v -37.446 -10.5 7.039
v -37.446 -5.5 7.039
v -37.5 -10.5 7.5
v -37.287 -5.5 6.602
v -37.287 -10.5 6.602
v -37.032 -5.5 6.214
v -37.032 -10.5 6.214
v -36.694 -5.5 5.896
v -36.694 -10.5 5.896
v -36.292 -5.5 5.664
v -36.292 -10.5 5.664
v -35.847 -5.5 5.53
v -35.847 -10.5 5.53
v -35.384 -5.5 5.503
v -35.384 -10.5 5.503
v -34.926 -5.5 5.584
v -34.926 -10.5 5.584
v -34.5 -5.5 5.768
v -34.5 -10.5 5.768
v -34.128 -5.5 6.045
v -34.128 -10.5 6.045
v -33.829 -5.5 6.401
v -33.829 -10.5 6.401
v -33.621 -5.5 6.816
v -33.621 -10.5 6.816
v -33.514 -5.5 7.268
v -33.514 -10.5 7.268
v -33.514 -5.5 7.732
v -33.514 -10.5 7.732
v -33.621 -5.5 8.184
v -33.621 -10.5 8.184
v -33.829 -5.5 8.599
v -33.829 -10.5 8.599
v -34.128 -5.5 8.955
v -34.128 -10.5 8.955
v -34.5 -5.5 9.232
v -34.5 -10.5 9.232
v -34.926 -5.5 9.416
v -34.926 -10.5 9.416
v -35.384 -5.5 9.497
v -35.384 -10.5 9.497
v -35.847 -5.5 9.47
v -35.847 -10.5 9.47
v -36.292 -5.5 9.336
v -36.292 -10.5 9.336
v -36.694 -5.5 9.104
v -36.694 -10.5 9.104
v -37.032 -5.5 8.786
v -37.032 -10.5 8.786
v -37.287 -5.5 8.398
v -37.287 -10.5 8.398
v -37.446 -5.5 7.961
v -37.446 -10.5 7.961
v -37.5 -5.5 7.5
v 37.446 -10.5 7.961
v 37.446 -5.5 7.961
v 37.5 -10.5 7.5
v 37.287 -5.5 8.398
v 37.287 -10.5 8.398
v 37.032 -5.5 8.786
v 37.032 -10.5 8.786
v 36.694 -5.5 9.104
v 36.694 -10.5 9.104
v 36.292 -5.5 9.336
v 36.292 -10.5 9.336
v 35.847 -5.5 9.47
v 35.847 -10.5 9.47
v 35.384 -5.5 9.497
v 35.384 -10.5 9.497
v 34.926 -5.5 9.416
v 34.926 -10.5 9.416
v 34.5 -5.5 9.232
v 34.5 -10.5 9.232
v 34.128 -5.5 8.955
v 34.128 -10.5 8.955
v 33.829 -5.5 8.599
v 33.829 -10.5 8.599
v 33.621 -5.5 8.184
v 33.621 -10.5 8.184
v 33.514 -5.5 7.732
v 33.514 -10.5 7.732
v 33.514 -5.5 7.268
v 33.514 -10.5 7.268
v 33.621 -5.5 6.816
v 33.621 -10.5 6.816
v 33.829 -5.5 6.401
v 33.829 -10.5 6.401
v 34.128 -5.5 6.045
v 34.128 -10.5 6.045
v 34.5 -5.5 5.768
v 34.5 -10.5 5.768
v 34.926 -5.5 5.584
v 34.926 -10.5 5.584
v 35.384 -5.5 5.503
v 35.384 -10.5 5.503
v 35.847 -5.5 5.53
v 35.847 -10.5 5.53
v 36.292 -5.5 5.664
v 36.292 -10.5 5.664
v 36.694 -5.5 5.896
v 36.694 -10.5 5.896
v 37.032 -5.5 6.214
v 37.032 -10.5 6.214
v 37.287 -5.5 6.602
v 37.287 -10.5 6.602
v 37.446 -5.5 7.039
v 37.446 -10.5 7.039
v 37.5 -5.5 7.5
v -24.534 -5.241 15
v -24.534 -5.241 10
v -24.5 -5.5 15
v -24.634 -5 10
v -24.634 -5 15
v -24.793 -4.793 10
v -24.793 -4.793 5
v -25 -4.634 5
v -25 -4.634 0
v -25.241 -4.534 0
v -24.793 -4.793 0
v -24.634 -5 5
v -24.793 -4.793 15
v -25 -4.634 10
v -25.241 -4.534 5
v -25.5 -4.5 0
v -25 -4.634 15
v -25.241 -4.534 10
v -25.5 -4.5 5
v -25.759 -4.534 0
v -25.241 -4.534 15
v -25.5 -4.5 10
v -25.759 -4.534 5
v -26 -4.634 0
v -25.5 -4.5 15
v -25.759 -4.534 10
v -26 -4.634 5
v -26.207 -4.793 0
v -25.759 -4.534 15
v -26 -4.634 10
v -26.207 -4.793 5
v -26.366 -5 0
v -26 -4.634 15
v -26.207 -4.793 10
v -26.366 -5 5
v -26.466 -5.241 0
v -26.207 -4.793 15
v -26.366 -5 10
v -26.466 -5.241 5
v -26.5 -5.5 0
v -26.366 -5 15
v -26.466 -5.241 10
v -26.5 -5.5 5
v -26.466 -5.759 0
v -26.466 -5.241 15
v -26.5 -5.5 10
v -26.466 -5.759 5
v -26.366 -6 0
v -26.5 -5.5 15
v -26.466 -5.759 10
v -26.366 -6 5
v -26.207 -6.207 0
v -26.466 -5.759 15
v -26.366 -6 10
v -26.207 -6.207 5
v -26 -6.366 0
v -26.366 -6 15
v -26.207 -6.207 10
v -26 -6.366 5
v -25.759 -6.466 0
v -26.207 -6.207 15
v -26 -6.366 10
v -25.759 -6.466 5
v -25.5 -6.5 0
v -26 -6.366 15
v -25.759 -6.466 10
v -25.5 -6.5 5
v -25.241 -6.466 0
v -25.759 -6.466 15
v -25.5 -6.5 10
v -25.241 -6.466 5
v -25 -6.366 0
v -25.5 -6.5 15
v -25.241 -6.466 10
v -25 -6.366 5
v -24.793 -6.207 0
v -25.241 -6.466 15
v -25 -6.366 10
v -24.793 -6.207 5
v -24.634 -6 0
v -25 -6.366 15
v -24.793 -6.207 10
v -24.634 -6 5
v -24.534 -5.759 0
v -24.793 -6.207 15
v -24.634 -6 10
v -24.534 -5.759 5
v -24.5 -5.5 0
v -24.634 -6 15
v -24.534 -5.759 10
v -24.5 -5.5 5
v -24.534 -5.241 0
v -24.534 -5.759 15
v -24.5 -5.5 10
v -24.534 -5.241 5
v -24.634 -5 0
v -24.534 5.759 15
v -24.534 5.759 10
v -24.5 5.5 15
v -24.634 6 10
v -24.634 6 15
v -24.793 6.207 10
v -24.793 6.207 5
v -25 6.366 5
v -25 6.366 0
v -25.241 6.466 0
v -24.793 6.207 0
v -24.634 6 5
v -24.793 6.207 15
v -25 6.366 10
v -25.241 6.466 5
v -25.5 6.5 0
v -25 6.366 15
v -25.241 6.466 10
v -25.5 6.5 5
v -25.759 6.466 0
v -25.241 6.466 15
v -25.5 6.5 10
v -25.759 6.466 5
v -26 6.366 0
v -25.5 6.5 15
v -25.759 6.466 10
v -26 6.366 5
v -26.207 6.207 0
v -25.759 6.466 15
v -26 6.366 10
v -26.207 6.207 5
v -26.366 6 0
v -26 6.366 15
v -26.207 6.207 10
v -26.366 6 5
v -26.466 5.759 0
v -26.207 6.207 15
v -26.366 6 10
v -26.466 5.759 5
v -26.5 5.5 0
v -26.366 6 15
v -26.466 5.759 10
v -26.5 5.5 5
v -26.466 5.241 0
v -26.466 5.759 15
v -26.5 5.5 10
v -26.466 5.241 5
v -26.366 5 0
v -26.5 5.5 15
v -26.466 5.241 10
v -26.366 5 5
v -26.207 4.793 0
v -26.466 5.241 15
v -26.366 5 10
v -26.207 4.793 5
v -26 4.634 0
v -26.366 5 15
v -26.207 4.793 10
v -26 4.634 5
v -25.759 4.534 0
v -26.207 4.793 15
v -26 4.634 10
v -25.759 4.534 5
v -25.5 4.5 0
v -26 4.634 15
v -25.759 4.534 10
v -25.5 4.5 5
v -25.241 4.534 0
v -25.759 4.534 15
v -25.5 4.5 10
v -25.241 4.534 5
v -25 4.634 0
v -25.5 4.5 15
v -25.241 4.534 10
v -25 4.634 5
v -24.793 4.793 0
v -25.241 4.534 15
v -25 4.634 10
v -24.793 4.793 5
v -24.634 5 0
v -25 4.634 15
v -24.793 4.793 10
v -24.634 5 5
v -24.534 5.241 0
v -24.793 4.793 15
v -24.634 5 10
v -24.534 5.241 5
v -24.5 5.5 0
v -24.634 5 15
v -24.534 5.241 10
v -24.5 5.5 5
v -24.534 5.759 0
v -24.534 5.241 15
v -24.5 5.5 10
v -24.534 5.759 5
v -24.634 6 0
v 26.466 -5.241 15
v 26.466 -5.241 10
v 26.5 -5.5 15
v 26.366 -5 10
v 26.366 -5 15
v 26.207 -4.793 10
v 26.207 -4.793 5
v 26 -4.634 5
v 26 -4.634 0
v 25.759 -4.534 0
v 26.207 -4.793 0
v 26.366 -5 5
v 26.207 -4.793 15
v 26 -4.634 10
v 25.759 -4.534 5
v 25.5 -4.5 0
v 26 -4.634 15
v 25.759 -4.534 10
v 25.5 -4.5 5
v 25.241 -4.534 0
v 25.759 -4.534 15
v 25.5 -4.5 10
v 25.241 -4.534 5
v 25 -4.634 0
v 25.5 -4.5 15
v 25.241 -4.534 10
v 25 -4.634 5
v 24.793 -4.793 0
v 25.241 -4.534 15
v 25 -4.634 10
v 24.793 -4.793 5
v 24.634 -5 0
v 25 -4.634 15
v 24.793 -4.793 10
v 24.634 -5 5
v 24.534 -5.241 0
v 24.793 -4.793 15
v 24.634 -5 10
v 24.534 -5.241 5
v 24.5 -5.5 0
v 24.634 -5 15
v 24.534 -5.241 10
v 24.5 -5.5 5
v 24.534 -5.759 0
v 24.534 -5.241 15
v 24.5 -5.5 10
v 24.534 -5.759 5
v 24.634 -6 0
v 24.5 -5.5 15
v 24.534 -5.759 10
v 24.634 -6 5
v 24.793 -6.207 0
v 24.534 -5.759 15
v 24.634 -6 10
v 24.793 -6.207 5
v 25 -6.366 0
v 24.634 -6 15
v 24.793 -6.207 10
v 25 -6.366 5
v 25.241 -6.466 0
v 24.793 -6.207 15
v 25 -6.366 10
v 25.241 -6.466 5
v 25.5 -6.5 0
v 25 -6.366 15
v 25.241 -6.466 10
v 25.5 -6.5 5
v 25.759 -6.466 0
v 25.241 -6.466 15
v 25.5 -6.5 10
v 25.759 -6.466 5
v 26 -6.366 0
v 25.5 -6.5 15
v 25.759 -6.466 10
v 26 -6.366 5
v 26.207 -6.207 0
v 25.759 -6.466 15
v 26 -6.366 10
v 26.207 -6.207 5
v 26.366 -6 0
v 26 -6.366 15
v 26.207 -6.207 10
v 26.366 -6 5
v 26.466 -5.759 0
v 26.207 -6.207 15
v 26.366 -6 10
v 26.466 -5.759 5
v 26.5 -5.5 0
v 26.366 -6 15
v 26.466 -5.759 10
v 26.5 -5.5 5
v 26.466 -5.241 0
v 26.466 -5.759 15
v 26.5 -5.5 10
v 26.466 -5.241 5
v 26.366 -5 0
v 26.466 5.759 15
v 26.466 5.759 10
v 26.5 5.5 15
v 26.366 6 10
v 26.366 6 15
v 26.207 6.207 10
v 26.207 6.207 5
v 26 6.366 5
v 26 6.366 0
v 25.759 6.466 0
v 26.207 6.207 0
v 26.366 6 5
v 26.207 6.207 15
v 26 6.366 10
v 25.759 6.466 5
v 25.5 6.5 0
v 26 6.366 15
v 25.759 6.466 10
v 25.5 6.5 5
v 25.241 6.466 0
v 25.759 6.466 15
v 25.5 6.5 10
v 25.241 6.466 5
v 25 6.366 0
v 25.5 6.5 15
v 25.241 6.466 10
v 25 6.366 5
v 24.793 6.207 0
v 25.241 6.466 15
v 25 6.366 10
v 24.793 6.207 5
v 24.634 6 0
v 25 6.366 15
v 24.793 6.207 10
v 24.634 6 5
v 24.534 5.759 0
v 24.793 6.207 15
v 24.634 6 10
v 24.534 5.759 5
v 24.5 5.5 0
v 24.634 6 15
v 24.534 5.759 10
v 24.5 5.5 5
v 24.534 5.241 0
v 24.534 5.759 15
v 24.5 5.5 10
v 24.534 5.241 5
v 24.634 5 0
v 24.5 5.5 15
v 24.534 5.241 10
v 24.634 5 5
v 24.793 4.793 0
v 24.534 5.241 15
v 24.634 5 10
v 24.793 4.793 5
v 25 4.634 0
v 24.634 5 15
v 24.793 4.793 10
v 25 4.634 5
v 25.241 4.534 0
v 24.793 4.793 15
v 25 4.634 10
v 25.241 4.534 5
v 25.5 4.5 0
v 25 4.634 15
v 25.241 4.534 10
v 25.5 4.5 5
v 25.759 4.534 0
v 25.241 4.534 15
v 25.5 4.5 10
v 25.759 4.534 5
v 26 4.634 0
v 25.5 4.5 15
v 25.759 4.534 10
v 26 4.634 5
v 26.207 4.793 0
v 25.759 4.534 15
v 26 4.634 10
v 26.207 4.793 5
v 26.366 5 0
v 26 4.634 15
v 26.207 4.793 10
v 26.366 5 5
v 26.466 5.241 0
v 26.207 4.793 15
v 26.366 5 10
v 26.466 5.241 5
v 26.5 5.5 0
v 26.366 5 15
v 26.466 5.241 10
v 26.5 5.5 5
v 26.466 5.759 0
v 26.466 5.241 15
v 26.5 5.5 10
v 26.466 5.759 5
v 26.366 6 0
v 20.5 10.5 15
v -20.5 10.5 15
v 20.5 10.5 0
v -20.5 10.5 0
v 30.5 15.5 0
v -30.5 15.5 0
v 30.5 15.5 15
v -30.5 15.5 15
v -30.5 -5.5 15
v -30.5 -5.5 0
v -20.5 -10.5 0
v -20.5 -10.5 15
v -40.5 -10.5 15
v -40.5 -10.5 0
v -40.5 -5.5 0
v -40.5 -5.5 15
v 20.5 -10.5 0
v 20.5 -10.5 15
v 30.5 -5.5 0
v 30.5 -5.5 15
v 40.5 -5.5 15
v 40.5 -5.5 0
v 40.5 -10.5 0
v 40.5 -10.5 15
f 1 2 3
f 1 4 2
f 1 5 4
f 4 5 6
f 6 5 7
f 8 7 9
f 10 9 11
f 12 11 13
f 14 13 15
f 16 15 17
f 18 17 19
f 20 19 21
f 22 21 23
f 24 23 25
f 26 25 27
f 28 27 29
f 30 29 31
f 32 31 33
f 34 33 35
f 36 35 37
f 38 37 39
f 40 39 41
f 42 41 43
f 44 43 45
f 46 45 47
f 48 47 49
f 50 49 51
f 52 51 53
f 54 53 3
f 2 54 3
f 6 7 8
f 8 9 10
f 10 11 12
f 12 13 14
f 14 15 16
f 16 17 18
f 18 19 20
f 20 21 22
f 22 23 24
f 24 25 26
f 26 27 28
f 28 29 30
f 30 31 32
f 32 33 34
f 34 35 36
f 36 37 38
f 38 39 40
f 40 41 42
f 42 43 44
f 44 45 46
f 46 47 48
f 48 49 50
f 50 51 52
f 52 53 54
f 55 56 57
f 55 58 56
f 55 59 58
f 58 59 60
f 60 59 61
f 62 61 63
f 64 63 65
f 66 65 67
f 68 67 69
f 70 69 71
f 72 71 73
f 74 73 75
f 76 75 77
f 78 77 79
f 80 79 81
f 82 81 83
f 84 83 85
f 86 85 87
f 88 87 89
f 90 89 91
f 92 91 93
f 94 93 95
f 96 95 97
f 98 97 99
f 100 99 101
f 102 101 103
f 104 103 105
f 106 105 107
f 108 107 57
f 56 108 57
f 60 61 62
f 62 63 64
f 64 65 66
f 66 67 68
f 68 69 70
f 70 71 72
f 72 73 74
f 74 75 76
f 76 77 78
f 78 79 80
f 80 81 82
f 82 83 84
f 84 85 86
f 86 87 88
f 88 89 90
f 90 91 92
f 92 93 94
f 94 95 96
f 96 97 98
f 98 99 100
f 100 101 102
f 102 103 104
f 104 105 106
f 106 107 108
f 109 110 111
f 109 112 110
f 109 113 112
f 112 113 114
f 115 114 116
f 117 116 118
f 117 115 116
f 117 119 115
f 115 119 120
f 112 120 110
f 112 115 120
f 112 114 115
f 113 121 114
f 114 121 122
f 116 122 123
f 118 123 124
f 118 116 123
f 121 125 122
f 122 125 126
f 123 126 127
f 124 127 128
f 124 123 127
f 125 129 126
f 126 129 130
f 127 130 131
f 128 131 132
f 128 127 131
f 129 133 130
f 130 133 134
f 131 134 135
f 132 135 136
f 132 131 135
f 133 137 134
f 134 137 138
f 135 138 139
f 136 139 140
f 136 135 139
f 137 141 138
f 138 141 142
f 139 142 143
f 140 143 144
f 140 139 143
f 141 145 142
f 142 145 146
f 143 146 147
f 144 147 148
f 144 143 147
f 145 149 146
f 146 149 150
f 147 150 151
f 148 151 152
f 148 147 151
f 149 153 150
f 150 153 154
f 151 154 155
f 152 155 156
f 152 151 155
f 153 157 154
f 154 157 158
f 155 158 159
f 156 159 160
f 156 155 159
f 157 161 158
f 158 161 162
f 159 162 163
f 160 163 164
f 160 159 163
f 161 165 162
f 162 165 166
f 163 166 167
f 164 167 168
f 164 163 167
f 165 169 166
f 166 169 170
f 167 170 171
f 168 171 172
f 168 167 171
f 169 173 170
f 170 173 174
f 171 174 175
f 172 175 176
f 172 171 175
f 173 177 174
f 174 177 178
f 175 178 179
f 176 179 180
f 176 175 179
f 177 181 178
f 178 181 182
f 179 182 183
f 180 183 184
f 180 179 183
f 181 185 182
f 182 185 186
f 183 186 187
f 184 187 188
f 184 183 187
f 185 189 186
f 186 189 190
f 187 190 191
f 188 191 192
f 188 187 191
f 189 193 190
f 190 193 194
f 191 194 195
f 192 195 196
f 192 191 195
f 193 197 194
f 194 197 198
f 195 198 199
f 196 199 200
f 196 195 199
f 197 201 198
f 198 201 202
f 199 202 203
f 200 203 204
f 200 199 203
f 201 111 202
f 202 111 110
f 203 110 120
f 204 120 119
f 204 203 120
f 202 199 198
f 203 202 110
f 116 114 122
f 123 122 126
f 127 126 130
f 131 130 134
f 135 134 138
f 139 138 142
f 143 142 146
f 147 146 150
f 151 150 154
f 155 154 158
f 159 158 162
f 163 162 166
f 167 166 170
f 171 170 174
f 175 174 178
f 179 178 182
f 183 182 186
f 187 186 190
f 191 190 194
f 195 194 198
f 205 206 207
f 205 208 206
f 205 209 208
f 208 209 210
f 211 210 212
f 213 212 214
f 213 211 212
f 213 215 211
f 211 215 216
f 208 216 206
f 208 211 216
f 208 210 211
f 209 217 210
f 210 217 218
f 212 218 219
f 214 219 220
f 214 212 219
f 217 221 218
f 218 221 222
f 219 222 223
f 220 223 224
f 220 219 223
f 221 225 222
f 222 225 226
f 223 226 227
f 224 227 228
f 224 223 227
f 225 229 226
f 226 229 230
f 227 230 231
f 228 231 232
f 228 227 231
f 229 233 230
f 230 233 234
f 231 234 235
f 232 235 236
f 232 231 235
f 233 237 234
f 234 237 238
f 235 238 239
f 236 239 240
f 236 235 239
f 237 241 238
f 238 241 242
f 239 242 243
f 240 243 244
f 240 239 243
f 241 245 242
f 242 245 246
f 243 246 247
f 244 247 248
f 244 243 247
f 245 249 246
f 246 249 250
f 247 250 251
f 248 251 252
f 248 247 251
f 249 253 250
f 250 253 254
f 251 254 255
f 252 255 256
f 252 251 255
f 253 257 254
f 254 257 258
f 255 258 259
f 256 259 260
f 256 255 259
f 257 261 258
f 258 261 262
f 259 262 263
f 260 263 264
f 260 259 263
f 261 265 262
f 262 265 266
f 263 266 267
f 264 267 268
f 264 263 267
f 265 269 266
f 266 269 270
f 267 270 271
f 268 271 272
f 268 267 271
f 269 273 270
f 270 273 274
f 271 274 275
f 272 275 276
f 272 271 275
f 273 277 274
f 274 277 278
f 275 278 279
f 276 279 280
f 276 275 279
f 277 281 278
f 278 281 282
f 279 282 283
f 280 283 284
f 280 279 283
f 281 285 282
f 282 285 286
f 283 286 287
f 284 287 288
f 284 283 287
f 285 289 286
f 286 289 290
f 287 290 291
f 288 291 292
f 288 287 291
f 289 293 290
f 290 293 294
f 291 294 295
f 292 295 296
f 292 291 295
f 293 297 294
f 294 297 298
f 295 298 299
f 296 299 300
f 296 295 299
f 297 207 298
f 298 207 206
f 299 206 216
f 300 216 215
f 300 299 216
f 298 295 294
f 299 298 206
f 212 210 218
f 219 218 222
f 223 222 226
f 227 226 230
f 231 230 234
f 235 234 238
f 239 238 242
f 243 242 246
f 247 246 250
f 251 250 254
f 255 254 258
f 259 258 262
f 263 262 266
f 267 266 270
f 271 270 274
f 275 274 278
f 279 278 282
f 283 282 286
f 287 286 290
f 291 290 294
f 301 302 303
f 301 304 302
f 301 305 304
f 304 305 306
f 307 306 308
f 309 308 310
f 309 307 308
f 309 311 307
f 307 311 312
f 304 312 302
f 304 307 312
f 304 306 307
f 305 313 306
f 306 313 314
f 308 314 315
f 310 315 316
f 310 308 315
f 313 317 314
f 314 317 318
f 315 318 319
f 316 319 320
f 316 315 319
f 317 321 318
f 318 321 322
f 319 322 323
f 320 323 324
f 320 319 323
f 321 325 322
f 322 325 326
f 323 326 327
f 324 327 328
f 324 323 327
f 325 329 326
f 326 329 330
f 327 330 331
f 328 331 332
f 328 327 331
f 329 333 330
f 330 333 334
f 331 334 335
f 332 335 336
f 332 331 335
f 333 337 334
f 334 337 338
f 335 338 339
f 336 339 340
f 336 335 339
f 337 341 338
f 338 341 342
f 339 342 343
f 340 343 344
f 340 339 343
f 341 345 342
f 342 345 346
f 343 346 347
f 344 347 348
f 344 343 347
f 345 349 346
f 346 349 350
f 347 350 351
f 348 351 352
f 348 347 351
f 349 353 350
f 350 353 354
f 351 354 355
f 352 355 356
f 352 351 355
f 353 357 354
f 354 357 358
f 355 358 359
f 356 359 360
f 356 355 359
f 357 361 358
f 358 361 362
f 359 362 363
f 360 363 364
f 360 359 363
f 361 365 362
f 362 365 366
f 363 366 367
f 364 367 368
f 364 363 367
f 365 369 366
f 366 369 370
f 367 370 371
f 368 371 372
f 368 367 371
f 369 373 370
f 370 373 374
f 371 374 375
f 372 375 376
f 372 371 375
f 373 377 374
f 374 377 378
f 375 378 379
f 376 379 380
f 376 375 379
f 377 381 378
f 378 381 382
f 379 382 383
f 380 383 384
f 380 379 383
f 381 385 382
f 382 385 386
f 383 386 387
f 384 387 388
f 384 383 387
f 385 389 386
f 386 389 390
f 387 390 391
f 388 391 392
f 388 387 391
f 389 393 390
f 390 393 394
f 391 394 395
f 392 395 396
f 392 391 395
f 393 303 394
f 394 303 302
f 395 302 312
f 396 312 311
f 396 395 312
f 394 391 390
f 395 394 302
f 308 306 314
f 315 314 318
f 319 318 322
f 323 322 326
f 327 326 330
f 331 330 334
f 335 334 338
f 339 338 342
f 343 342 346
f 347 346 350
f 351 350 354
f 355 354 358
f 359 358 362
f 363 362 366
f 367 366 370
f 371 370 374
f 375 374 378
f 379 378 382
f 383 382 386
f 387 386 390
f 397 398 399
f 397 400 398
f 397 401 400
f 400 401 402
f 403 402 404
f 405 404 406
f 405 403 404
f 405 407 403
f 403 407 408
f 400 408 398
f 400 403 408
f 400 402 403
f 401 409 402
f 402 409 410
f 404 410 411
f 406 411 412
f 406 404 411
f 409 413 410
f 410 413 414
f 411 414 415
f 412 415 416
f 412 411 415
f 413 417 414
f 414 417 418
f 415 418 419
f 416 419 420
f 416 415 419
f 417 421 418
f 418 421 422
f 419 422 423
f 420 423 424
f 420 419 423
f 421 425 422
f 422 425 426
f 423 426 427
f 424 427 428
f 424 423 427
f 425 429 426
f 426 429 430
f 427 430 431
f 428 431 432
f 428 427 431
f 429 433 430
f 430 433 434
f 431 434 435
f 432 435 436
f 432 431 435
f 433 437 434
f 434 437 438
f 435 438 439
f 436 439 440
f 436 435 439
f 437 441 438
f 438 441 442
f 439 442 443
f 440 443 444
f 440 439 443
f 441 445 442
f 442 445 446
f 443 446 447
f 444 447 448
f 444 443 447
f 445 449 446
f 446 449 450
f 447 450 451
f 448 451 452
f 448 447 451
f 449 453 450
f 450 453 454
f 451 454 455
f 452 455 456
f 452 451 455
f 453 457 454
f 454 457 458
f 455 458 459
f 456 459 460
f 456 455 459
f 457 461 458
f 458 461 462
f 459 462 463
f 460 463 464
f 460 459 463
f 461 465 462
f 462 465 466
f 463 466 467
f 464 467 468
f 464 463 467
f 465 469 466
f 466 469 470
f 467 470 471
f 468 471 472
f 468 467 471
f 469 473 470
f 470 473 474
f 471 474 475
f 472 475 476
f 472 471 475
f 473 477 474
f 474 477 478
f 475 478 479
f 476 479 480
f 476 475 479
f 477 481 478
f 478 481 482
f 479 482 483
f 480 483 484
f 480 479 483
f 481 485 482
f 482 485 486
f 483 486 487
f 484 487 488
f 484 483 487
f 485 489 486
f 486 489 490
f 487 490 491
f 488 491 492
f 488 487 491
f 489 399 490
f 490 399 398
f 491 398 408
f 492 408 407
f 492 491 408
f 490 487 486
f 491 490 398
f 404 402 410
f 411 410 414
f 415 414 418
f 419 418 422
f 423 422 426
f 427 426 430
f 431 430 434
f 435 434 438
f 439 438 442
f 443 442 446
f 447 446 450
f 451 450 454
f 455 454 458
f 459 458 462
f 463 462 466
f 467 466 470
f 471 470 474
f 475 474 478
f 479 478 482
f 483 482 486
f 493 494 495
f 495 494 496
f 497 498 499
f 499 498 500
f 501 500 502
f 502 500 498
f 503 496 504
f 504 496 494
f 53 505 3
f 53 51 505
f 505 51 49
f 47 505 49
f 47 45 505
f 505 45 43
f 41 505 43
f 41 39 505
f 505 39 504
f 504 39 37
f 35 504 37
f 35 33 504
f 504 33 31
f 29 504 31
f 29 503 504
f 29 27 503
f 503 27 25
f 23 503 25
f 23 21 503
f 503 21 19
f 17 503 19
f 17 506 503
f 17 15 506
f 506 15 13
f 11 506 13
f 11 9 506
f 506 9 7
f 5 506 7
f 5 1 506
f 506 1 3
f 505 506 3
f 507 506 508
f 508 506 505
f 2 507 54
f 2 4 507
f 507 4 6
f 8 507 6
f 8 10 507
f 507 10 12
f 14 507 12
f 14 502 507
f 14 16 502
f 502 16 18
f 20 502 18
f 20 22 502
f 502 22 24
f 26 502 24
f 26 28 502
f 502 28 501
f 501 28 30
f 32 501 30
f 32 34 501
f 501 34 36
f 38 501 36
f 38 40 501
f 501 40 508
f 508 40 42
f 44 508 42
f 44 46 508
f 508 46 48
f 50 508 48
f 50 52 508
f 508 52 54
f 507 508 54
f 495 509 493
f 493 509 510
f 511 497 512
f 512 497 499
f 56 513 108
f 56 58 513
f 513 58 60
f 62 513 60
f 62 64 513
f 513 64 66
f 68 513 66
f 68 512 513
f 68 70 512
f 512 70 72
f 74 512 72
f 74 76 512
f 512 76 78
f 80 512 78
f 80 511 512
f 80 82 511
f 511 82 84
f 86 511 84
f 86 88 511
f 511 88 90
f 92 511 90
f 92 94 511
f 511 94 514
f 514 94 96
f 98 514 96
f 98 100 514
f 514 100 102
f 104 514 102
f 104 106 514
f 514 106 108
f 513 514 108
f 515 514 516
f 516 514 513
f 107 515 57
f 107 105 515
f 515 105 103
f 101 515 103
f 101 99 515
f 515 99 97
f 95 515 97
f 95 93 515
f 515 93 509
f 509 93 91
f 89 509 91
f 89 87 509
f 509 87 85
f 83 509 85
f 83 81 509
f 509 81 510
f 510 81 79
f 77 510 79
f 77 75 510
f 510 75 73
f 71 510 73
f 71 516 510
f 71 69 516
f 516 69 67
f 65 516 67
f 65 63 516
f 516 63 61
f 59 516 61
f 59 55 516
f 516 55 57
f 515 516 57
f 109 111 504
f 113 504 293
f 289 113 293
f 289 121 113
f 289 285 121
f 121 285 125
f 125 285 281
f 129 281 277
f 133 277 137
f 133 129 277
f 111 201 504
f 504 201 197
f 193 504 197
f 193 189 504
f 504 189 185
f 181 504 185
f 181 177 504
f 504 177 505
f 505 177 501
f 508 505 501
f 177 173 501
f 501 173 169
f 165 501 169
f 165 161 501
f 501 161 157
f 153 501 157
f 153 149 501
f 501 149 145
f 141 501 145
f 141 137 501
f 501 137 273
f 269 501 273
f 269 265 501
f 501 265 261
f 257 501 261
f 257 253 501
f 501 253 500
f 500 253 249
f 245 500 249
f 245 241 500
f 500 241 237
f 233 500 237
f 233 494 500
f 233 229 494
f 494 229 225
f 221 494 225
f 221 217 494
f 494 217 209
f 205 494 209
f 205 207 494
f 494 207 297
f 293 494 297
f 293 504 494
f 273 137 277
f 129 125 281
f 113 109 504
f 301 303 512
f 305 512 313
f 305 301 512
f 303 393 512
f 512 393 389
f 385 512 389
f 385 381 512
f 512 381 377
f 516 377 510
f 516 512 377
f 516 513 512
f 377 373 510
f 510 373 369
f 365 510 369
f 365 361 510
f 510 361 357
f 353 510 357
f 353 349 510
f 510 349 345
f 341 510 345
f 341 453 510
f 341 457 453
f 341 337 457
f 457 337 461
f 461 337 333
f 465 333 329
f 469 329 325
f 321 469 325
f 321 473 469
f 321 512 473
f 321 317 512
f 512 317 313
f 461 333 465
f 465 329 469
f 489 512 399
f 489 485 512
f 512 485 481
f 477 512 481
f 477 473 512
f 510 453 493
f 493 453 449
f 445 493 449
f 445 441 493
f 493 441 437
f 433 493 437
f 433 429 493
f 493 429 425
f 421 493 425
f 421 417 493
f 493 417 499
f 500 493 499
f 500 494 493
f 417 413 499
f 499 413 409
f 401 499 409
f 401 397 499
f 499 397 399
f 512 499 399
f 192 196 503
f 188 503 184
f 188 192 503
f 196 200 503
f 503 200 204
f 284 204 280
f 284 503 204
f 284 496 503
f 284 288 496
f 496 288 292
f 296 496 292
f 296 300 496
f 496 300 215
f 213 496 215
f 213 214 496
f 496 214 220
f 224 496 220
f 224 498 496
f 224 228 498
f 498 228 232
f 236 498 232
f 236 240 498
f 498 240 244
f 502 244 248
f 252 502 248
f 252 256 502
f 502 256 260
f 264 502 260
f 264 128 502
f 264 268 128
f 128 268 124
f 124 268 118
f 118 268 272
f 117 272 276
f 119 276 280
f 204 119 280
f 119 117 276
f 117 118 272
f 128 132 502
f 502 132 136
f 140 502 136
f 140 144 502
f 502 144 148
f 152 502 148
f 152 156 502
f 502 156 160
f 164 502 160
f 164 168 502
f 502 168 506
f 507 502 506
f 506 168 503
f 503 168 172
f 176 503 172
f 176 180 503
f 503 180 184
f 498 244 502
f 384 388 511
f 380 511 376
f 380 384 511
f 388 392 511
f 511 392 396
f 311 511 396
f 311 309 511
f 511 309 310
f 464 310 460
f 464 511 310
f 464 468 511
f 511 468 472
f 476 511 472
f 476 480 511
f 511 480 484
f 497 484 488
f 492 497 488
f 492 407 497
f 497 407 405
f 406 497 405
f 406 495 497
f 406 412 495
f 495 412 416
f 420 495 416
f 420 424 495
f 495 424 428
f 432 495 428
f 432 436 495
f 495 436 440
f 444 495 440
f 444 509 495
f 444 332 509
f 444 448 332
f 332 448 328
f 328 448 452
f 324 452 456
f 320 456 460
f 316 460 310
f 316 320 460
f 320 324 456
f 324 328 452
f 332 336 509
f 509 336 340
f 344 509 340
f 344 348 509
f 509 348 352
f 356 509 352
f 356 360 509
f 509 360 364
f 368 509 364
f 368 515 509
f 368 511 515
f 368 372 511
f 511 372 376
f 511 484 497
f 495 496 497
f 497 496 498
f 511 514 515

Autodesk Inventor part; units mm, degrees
ref_plane "YZ Plane" through (0, 0, 0) normal (1, 0, 0) x (0, 1, 0)
ref_plane "XZ Plane" through (0, 0, 0) normal (0, 1, 0) x (-1, 0, 0)
ref_plane "XY Plane" through (0, 0, 0) normal (0, 0, 1) x (1, 0, 0)
sketch "Sketch1" plane through (0, 0, 0) normal (0, 0, 1) x (1, 0, 0)
  line L0 (-20.5, -10.5) -> (20.5, -10.5)
  line L1 (20.5, -10.5) -> (20.5, 10.5)
  line L2 (20.5, 10.5) -> (-20.5, 10.5)
  line L3 (-20.5, 10.5) -> (-20.5, -10.5)
  line L4 (-20.5, -10.5) -> (20.5, 10.5) construction
  line L5 (20.5, -10.5) -> (-20.5, 10.5) construction
  circle A0 centre (25.5, 5.5) radius 1
  circle A1 centre (25.5, -5.5) radius 1
  line L6 (0, 21.6766) -> (0, -21.497) construction
  circle A2 centre (-25.5, 5.5) radius 1
  circle A3 centre (-25.5, -5.5) radius 1
  line L7 (-20.5, -10.5) -> (-30.5, -10.5)
  line L8 (-30.5, -10.5) -> (-30.5, 10.5)
  line L9 (-30.5, 10.5) -> (-20.5, 10.5)
  line L10 (-20.5, 10.5) -> (-20.5, -10.5)
  line L11 (20.5, -10.5) -> (30.5, -10.5)
  line L12 (30.5, -10.5) -> (30.5, 10.5)
  line L13 (30.5, 10.5) -> (20.5, 10.5)
  line L14 (20.5, 10.5) -> (20.5, -10.5)
  line L15 (-30.5, 10.5) -> (30.5, 10.5)
  line L16 (30.5, 10.5) -> (30.5, 15.5)
  line L17 (30.5, 15.5) -> (-30.5, 15.5)
  line L18 (-30.5, 15.5) -> (-30.5, 10.5)
  line L19 (-30.5, -10.5) -> (-40.5, -10.5)
  line L20 (-40.5, -10.5) -> (-40.5, -5.5)
  line L21 (-40.5, -5.5) -> (-30.5, -5.5)
  line L22 (-30.5, -5.5) -> (-30.5, -10.5)
  line L23 (30.5, -10.5) -> (40.5, -10.5)
  line L24 (40.5, -10.5) -> (40.5, -5.5)
  line L25 (40.5, -5.5) -> (30.5, -5.5)
  line L26 (30.5, -5.5) -> (30.5, -10.5)
  point P0 (0, 0)
  dimension "d0" = 41
  dimension "d1" = 21
  dimension "d2" = 2
  dimension "d3" = 2
  dimension "d4" = 10
  dimension "d5" = 10
  dimension "d6" = 5
  dimension "d7" = 10
  dimension "d8" = 5
  dimension "d9" = 10
extrude "Extrusion1" add sketch "Sketch1" along normal blind 15 contours L7 L8 L9 L3 | L1 L13 L12 L11 | L9 L18 L17 L16 L13 L2 | L19 L20 L21 L8 | L12 L25 L24 L23
sketch "Sketch2" plane through (30.5, -5.5, 0) normal (0, 1, 0) x (1, 0, 0)
  circle A0 centre (5, -7.5) radius 2
  point P0 (-30.5, 0)
  dimension "d12" = 4
extrude "Extrusion2" cut sketch "Sketch2" against normal through all
mirror "Mirror1" about plane through (0, 0, 0) normal (1, 0, 0) of "Extrusion2"
properties part number "PinewoodServoMount"
